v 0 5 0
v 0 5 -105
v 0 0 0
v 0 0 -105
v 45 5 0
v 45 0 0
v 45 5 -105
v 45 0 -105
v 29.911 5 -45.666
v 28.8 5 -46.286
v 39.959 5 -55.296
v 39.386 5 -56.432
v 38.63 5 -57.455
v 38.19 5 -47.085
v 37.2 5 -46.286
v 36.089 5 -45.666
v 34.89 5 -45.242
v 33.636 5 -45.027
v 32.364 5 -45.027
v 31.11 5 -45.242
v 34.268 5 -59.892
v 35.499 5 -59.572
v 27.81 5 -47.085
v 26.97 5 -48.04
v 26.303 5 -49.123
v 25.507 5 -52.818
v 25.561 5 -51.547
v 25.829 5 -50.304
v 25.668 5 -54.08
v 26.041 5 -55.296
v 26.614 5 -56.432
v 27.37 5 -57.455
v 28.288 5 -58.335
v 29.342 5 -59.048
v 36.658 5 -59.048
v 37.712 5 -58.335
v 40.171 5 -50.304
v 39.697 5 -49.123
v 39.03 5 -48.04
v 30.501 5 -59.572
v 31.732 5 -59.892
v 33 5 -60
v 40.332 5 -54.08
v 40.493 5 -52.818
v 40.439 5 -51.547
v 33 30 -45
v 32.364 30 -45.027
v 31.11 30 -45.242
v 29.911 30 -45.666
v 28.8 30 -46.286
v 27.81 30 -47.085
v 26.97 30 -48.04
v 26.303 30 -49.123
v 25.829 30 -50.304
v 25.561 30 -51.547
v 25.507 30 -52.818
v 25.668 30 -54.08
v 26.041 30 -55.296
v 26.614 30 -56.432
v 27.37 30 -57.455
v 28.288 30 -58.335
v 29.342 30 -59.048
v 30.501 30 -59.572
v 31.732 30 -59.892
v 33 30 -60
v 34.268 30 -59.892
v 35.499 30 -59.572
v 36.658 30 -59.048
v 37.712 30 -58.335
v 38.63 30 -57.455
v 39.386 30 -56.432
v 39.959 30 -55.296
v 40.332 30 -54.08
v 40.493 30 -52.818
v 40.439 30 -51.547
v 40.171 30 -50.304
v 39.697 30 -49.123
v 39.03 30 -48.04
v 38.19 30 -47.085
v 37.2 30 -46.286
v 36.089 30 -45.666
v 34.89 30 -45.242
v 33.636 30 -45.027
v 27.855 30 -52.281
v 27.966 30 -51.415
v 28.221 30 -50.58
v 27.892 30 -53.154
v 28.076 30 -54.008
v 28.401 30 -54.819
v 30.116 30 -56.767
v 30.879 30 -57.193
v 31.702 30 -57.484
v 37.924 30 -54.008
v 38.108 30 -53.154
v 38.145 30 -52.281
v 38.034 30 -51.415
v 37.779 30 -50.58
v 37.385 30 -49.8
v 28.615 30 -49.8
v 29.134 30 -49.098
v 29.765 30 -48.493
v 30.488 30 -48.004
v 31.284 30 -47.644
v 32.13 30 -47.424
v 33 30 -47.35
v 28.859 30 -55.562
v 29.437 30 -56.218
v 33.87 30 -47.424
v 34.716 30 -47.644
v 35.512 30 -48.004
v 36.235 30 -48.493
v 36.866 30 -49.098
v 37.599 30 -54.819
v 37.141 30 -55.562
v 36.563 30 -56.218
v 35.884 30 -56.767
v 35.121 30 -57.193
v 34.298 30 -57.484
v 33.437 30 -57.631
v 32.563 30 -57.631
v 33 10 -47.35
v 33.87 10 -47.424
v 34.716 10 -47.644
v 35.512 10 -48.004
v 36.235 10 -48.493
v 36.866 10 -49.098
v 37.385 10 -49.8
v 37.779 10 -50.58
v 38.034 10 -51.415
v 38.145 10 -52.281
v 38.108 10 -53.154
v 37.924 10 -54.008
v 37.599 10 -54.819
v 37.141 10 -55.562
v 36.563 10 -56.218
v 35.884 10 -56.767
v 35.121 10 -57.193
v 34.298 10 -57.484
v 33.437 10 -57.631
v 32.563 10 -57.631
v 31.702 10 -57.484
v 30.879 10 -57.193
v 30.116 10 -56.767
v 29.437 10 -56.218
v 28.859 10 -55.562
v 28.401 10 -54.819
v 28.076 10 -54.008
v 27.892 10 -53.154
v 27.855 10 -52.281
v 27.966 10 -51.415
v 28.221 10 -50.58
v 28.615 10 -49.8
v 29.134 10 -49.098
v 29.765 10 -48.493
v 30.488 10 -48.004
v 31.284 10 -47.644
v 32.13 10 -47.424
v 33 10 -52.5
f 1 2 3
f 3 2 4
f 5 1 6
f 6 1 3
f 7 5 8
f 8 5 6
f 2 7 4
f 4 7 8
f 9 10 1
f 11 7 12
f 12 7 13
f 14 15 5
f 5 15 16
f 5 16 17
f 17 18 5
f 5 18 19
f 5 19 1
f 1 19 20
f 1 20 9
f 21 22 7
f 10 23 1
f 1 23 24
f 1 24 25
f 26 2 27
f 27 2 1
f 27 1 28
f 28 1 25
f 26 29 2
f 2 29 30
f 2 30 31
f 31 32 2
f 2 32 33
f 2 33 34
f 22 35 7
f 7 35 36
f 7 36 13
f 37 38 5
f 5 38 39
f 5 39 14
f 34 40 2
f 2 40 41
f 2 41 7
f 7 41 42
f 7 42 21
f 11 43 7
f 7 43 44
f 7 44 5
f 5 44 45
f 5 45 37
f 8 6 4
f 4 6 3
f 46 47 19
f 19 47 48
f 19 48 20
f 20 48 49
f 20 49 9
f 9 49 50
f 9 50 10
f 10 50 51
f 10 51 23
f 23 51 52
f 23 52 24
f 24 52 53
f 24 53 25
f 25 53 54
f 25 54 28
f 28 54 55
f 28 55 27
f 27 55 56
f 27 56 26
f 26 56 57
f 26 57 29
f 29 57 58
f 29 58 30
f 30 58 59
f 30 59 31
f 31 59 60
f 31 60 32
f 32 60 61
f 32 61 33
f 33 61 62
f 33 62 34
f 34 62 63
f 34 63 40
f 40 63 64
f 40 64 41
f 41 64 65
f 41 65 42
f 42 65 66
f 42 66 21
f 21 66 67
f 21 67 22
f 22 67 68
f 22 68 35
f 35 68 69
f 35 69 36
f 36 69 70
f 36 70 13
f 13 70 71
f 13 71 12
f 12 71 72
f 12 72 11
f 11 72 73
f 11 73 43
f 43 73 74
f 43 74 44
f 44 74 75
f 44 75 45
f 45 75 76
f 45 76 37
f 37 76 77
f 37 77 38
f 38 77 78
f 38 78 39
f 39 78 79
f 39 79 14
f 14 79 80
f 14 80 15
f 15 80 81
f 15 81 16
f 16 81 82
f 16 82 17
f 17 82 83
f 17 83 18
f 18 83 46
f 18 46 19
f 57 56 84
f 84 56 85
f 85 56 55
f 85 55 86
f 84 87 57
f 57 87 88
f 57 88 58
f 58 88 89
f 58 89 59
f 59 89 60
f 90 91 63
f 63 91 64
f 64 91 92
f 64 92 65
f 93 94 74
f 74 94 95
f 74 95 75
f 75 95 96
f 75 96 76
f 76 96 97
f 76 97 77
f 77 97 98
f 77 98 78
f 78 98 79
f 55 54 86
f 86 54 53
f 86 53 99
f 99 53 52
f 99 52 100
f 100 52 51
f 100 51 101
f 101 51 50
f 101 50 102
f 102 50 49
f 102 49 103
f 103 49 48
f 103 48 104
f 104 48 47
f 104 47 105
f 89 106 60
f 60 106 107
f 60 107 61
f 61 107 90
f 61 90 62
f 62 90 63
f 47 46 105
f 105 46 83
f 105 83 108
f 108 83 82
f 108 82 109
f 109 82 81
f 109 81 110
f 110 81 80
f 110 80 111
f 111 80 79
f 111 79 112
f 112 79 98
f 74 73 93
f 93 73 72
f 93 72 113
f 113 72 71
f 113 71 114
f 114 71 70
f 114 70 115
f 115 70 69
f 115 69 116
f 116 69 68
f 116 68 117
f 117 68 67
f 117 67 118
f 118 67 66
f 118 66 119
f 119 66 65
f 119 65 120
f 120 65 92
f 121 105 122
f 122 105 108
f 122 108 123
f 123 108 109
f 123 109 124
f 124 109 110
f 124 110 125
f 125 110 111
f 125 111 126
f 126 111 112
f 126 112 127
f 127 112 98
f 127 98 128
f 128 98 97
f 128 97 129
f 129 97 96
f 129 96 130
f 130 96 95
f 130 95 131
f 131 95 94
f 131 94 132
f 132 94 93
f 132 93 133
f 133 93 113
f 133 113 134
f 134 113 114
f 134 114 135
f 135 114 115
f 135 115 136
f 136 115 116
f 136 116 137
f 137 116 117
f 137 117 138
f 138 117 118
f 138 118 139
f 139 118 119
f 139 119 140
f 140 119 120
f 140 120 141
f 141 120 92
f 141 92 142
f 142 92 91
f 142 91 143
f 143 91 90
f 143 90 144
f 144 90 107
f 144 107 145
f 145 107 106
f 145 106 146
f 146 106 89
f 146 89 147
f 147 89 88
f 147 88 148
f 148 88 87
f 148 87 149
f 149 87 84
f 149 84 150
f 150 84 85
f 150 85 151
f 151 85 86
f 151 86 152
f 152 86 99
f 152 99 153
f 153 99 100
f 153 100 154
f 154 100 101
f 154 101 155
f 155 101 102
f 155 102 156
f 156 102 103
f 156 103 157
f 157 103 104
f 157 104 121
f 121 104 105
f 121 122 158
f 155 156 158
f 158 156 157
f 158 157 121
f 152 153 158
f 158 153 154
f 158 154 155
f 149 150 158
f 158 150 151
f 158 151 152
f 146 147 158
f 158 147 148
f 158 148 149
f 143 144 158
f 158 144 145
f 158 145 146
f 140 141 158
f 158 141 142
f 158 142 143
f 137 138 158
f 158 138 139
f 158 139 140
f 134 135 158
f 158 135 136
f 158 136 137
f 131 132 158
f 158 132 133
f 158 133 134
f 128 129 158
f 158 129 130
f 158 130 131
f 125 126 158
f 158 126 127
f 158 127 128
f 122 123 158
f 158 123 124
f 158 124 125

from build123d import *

# Parameters (mm, degrees)
SKETCH1_W           = 45
SKETCH1_H           = 105
BOSS_EXTRUDE3_DEPTH = 5
SKETCH3_R           = 7.5
BOSS_EXTRUDE4_DEPTH = 25
SKETCH4_R           = 5.15
CUT_EXTRUDE1_DEPTH  = 20


with BuildPart() as part:
    # Sketch1 → Boss-Extrude3 (new body)
    with BuildSketch(Plane(origin=(0, 0, 0), x_dir=(1, 0, 0), z_dir=(0, 1, 0))):
        with Locations((22.5, 52.5)):
            Rectangle(SKETCH1_W, SKETCH1_H)
    extrude(amount=BOSS_EXTRUDE3_DEPTH)

    # Sketch3 → Boss-Extrude4 (add)
    with BuildSketch(Plane(origin=(0, 5, 0), x_dir=(1, 0, 0), z_dir=(0, 1, 0))):
        with Locations((33, 52.5)):
            Circle(SKETCH3_R)
    extrude(amount=BOSS_EXTRUDE4_DEPTH)

    # Sketch4 → Cut-Extrude1 (cut)
    with BuildSketch(Plane(origin=(0, 30, 0), x_dir=(1, 0, 0), z_dir=(0, 1, 0))):
        with Locations((33, 52.5)):
            Circle(SKETCH4_R)
    extrude(amount=-CUT_EXTRUDE1_DEPTH, mode=Mode.SUBTRACT)


solid = part.part
